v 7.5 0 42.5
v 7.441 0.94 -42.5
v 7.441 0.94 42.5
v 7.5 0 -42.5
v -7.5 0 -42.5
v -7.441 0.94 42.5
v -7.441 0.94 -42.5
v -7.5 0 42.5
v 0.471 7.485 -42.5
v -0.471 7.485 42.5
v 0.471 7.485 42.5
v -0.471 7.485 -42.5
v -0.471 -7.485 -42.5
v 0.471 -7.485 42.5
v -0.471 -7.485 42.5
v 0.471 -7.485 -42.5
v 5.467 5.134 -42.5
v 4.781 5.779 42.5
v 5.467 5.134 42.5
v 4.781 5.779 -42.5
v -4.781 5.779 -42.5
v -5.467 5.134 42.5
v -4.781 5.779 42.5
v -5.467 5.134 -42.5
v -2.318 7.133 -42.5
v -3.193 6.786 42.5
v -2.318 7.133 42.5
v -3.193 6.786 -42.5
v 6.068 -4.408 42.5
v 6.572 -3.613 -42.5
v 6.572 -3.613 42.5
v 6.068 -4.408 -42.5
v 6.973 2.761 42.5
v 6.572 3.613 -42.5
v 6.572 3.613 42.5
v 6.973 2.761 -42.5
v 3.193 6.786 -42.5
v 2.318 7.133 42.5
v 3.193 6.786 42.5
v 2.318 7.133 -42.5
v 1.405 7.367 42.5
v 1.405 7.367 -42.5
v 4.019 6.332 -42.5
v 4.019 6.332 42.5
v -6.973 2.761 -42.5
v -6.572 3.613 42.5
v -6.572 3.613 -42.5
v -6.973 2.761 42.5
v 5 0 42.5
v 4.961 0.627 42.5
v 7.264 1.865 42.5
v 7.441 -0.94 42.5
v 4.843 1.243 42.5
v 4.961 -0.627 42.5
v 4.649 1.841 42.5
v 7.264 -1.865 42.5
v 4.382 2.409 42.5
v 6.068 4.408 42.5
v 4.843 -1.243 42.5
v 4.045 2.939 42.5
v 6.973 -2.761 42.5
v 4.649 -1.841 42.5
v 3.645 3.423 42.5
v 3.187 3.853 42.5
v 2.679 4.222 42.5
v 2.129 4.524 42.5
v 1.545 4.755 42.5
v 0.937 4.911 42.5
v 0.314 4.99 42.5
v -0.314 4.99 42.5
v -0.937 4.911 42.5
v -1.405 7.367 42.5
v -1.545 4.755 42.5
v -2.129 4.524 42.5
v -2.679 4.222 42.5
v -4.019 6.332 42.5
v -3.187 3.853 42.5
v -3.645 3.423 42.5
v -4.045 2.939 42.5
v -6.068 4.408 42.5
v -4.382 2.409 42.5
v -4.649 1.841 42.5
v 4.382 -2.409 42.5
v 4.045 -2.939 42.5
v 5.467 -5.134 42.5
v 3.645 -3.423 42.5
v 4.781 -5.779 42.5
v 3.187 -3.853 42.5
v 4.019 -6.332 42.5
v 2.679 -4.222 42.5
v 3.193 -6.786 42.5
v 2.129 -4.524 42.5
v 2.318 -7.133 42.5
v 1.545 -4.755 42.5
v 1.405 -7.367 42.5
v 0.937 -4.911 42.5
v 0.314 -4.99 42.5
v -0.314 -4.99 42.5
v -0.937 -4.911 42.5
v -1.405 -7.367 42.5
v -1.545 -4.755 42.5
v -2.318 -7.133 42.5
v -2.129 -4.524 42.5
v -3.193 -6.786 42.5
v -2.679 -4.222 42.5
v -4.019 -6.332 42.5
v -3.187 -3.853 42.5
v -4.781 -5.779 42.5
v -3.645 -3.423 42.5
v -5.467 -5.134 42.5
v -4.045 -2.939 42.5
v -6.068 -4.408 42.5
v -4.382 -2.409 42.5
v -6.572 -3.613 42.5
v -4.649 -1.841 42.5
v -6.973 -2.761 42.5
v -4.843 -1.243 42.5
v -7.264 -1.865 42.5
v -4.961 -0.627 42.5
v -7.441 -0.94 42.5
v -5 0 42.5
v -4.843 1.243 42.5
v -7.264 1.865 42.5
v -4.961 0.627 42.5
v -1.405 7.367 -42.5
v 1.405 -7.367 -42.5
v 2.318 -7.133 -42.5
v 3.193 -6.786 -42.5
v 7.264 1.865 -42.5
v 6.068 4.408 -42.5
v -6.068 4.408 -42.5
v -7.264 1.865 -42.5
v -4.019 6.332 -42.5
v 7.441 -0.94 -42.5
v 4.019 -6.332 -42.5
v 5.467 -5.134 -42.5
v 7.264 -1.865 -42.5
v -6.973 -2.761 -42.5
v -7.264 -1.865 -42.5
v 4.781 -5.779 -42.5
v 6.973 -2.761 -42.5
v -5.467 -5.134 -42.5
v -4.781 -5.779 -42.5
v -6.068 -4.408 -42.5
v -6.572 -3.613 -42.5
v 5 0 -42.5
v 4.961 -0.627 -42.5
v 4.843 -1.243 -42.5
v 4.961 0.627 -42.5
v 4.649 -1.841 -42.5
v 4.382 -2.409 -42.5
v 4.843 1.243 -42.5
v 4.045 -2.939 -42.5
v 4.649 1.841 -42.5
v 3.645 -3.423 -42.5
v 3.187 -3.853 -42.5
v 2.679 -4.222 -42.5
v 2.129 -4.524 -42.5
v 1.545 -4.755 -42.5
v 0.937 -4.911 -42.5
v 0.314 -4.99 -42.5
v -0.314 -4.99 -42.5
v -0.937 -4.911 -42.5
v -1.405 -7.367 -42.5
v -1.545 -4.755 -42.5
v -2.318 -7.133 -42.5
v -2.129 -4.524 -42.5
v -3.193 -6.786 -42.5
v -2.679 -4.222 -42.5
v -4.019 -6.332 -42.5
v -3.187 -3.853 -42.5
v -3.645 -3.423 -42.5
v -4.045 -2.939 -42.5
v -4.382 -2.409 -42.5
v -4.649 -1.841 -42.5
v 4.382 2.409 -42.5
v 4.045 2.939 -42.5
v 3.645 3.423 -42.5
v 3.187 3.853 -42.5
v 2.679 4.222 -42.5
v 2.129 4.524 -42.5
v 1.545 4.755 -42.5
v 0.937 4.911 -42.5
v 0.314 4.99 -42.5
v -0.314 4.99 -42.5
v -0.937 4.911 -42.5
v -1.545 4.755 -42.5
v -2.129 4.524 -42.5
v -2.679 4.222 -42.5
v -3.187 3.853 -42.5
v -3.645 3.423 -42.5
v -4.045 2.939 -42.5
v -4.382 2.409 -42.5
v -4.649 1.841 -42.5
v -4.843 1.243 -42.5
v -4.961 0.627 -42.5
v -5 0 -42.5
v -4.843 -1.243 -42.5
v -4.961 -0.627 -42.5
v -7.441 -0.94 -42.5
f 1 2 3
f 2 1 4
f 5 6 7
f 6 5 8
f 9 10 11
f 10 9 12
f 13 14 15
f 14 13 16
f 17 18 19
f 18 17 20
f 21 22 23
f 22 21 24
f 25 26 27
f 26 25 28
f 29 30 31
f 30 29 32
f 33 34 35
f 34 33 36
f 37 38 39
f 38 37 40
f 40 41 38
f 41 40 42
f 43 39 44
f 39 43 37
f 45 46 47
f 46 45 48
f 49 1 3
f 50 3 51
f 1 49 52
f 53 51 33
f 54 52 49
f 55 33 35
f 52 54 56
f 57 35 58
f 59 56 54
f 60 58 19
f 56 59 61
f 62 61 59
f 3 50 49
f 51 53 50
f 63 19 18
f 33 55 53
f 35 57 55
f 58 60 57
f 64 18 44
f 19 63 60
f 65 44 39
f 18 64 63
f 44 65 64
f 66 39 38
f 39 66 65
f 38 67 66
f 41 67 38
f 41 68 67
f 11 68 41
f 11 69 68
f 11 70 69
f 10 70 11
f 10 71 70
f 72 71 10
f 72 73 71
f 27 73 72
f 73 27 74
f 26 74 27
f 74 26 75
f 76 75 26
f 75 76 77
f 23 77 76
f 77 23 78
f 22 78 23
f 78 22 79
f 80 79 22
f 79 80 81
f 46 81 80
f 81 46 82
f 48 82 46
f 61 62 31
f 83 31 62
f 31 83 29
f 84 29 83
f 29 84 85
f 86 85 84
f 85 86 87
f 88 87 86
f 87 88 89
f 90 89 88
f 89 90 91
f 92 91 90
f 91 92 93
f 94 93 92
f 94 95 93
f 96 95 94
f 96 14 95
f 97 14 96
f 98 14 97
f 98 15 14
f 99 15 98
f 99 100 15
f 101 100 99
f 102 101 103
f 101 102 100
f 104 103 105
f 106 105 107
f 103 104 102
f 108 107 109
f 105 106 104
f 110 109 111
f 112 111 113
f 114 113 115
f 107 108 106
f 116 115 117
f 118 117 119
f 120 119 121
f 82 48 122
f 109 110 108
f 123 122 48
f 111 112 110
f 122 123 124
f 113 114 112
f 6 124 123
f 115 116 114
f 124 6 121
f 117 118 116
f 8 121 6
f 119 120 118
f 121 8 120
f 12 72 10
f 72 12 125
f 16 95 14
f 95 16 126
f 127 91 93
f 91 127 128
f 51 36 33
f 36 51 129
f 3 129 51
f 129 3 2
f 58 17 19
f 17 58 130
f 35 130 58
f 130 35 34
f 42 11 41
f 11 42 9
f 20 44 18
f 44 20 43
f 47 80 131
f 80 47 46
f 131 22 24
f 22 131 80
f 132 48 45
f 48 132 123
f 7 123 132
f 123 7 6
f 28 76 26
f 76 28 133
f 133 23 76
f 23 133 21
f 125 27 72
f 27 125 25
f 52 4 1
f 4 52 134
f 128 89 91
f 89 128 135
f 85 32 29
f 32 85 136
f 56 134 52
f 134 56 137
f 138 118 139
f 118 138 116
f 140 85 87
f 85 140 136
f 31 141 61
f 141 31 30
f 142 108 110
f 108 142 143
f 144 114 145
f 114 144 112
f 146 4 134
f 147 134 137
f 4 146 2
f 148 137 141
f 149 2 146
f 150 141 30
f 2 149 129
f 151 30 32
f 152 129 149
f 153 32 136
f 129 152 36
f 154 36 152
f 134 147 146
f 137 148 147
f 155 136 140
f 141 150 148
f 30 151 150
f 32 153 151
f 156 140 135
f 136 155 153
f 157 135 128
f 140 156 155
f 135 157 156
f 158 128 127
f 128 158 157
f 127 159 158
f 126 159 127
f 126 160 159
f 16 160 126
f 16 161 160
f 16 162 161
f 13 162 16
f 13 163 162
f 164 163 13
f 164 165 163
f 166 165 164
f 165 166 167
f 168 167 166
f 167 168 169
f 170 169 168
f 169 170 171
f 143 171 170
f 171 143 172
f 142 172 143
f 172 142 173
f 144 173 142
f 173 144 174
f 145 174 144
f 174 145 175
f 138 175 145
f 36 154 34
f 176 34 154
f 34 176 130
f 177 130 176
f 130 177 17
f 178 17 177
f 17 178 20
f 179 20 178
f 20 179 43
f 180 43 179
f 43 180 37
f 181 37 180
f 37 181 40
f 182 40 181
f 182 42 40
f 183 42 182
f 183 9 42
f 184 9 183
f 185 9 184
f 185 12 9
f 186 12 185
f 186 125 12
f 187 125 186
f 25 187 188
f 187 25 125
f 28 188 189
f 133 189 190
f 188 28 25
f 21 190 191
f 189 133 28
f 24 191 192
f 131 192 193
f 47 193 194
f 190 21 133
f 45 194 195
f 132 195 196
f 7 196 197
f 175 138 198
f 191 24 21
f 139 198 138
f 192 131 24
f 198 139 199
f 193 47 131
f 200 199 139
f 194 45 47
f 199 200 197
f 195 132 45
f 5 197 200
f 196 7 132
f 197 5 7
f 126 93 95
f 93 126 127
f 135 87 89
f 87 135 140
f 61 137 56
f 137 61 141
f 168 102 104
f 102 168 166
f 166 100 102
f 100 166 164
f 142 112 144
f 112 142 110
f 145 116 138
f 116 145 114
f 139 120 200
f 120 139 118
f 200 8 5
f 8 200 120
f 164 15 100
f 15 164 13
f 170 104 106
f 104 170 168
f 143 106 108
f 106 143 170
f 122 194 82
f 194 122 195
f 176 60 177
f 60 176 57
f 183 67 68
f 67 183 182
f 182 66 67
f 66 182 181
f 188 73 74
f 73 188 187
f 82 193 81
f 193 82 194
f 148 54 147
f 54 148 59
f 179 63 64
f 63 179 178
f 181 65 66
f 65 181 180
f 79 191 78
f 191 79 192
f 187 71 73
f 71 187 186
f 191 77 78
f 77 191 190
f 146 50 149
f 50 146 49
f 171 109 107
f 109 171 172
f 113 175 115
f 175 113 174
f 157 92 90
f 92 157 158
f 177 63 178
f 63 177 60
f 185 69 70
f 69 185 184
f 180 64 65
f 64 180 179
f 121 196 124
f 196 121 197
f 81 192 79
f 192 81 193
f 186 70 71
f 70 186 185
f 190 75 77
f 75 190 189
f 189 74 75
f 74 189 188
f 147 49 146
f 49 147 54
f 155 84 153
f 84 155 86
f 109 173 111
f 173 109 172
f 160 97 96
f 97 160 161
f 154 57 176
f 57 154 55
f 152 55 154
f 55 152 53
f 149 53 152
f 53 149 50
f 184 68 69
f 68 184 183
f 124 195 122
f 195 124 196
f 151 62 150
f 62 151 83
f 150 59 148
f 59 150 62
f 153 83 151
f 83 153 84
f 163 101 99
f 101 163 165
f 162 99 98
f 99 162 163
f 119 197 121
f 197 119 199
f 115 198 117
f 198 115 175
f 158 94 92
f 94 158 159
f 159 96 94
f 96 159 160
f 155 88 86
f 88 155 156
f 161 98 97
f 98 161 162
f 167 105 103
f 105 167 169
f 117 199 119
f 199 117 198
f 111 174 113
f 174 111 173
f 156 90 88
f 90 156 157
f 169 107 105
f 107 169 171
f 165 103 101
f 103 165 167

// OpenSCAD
$fn = 50;


difference() {
	union() {
		translate(v = [0, 0, -42.5000000000]) {
			cylinder(h = 85, r = 7.5000000000);
		}
	}
	union() {
		translate(v = [0, 0, -100.0000000000]) {
			cylinder(h = 200, r = 5);
		}
	}
}
